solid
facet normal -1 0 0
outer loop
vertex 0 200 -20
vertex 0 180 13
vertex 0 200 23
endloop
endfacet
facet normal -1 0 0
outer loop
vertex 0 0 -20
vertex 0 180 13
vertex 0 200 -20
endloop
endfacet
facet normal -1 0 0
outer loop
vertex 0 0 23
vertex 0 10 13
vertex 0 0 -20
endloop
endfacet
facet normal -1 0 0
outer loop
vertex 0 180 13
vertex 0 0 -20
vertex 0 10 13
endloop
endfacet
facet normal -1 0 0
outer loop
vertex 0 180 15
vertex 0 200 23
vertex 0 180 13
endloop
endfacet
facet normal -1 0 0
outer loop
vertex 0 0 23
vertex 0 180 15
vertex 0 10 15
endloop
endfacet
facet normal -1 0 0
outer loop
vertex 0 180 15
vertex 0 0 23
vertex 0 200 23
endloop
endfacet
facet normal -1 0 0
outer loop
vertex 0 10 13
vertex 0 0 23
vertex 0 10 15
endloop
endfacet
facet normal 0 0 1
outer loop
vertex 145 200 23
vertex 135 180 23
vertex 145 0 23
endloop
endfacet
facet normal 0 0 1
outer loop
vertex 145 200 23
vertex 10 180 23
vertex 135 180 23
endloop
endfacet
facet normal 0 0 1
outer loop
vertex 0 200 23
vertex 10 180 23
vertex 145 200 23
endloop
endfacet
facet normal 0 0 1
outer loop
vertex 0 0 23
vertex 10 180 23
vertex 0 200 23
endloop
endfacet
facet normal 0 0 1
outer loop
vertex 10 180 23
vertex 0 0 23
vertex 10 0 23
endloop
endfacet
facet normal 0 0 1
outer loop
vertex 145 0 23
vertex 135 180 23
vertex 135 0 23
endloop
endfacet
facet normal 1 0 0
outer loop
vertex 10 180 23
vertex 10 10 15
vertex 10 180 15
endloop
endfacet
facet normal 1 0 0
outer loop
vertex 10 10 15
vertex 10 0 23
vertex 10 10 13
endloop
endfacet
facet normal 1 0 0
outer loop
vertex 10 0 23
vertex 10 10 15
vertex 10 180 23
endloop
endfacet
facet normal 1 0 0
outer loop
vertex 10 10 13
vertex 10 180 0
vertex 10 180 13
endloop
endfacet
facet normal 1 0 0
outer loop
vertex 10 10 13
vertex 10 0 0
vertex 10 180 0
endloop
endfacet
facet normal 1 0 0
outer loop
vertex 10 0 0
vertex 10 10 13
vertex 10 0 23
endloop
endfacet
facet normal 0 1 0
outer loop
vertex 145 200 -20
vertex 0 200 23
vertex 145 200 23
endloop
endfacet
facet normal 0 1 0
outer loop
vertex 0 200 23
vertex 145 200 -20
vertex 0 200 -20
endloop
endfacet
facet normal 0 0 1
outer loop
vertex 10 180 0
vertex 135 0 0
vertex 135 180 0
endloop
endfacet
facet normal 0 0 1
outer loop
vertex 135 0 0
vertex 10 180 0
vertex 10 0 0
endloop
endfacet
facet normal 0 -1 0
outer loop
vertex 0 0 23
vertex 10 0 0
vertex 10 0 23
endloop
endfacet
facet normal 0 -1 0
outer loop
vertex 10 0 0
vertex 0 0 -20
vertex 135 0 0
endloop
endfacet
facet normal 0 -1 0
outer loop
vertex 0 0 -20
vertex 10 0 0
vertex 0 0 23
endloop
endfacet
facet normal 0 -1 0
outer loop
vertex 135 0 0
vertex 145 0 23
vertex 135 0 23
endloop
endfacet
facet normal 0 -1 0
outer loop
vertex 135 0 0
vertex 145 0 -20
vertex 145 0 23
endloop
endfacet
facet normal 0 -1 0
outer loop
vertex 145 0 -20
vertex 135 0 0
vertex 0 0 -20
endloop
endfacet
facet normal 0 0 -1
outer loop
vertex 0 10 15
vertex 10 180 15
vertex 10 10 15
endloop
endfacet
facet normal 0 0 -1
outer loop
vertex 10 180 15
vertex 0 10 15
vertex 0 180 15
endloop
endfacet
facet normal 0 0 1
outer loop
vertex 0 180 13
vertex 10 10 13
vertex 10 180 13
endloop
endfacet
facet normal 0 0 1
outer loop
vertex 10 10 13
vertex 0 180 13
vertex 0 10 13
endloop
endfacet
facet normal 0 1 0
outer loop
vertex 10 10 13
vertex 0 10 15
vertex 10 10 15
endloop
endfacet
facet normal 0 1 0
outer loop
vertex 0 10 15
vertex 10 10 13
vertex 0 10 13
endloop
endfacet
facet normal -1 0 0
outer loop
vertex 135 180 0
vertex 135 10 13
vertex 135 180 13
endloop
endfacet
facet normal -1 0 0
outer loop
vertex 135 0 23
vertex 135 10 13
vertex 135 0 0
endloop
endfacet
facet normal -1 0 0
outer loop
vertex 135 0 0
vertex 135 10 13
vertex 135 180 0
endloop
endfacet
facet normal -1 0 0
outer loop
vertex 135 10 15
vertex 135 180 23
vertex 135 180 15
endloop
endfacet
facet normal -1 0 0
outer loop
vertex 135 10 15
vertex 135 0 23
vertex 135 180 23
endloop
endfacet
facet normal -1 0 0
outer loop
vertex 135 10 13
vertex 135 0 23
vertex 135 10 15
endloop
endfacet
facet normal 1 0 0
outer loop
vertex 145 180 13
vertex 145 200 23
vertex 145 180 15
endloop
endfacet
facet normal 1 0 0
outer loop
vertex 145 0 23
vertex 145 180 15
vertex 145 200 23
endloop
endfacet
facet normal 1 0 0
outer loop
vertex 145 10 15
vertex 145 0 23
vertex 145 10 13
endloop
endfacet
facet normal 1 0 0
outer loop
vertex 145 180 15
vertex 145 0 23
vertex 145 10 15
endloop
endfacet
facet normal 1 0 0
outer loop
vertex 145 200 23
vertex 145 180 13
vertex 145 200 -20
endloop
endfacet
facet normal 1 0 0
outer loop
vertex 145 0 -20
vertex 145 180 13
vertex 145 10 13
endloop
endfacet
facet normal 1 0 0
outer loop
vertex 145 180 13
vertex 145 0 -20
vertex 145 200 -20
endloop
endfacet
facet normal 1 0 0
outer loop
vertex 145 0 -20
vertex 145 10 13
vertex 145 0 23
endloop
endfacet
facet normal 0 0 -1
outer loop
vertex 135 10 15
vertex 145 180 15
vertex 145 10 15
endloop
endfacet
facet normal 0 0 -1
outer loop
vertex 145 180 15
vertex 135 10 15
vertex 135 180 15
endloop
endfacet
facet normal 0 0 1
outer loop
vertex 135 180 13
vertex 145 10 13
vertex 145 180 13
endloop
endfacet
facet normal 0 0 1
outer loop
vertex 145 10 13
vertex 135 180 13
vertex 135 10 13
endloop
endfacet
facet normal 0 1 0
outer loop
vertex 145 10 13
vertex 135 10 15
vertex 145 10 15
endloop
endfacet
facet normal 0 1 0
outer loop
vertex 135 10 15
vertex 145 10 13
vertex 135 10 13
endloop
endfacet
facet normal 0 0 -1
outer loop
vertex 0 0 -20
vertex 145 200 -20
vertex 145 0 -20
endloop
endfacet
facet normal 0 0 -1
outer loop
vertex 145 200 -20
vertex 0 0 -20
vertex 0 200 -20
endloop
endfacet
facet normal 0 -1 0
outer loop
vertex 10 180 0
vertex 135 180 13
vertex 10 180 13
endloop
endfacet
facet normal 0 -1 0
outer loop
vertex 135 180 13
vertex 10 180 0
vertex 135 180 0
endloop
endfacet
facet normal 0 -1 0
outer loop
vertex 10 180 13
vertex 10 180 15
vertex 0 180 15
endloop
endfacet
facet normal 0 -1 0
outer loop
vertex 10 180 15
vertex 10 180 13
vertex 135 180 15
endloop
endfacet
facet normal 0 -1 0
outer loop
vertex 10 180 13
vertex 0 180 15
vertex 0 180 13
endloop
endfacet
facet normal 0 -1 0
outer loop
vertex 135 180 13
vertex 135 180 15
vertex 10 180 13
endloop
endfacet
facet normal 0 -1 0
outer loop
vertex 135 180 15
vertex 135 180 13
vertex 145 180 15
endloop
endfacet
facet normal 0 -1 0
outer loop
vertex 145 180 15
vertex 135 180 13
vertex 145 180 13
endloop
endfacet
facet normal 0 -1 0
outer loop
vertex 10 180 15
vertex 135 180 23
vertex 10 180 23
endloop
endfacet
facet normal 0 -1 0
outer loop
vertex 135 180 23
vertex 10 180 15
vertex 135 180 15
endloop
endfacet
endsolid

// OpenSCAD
fn = 100;
breadBoardX = 145;
breadBoardY = 200;
breadBoardZ = 20;
wallHight = 23;
wallThick = 10;
knifeGap = 2;
knifeGapZPos = 13;
knifeGapZFeet = 10;
stopperWallY = 20;


module breadboard() {
    translate([0,0,-breadBoardZ])
        cube([breadBoardX,breadBoardY,breadBoardZ], center = false);
}
module wall(posX) {
    difference() {
        translate([posX,0,0])   
            cube([wallThick,breadBoardY,wallHight], center = false); 
        translate([posX-0.5,knifeGapZFeet,knifeGapZPos])
            cube([wallThick+1,breadBoardY-2*knifeGapZFeet,knifeGap], center = false);   
    }
}
module stopper() {
    translate([0,breadBoardY-stopperWallY,0])
        cube([breadBoardX,stopperWallY,wallHight], center = false); 
}
module main() {
    breadboard();
    wall(0);
    wall(breadBoardX-wallThick);
    stopper();
}

main();
